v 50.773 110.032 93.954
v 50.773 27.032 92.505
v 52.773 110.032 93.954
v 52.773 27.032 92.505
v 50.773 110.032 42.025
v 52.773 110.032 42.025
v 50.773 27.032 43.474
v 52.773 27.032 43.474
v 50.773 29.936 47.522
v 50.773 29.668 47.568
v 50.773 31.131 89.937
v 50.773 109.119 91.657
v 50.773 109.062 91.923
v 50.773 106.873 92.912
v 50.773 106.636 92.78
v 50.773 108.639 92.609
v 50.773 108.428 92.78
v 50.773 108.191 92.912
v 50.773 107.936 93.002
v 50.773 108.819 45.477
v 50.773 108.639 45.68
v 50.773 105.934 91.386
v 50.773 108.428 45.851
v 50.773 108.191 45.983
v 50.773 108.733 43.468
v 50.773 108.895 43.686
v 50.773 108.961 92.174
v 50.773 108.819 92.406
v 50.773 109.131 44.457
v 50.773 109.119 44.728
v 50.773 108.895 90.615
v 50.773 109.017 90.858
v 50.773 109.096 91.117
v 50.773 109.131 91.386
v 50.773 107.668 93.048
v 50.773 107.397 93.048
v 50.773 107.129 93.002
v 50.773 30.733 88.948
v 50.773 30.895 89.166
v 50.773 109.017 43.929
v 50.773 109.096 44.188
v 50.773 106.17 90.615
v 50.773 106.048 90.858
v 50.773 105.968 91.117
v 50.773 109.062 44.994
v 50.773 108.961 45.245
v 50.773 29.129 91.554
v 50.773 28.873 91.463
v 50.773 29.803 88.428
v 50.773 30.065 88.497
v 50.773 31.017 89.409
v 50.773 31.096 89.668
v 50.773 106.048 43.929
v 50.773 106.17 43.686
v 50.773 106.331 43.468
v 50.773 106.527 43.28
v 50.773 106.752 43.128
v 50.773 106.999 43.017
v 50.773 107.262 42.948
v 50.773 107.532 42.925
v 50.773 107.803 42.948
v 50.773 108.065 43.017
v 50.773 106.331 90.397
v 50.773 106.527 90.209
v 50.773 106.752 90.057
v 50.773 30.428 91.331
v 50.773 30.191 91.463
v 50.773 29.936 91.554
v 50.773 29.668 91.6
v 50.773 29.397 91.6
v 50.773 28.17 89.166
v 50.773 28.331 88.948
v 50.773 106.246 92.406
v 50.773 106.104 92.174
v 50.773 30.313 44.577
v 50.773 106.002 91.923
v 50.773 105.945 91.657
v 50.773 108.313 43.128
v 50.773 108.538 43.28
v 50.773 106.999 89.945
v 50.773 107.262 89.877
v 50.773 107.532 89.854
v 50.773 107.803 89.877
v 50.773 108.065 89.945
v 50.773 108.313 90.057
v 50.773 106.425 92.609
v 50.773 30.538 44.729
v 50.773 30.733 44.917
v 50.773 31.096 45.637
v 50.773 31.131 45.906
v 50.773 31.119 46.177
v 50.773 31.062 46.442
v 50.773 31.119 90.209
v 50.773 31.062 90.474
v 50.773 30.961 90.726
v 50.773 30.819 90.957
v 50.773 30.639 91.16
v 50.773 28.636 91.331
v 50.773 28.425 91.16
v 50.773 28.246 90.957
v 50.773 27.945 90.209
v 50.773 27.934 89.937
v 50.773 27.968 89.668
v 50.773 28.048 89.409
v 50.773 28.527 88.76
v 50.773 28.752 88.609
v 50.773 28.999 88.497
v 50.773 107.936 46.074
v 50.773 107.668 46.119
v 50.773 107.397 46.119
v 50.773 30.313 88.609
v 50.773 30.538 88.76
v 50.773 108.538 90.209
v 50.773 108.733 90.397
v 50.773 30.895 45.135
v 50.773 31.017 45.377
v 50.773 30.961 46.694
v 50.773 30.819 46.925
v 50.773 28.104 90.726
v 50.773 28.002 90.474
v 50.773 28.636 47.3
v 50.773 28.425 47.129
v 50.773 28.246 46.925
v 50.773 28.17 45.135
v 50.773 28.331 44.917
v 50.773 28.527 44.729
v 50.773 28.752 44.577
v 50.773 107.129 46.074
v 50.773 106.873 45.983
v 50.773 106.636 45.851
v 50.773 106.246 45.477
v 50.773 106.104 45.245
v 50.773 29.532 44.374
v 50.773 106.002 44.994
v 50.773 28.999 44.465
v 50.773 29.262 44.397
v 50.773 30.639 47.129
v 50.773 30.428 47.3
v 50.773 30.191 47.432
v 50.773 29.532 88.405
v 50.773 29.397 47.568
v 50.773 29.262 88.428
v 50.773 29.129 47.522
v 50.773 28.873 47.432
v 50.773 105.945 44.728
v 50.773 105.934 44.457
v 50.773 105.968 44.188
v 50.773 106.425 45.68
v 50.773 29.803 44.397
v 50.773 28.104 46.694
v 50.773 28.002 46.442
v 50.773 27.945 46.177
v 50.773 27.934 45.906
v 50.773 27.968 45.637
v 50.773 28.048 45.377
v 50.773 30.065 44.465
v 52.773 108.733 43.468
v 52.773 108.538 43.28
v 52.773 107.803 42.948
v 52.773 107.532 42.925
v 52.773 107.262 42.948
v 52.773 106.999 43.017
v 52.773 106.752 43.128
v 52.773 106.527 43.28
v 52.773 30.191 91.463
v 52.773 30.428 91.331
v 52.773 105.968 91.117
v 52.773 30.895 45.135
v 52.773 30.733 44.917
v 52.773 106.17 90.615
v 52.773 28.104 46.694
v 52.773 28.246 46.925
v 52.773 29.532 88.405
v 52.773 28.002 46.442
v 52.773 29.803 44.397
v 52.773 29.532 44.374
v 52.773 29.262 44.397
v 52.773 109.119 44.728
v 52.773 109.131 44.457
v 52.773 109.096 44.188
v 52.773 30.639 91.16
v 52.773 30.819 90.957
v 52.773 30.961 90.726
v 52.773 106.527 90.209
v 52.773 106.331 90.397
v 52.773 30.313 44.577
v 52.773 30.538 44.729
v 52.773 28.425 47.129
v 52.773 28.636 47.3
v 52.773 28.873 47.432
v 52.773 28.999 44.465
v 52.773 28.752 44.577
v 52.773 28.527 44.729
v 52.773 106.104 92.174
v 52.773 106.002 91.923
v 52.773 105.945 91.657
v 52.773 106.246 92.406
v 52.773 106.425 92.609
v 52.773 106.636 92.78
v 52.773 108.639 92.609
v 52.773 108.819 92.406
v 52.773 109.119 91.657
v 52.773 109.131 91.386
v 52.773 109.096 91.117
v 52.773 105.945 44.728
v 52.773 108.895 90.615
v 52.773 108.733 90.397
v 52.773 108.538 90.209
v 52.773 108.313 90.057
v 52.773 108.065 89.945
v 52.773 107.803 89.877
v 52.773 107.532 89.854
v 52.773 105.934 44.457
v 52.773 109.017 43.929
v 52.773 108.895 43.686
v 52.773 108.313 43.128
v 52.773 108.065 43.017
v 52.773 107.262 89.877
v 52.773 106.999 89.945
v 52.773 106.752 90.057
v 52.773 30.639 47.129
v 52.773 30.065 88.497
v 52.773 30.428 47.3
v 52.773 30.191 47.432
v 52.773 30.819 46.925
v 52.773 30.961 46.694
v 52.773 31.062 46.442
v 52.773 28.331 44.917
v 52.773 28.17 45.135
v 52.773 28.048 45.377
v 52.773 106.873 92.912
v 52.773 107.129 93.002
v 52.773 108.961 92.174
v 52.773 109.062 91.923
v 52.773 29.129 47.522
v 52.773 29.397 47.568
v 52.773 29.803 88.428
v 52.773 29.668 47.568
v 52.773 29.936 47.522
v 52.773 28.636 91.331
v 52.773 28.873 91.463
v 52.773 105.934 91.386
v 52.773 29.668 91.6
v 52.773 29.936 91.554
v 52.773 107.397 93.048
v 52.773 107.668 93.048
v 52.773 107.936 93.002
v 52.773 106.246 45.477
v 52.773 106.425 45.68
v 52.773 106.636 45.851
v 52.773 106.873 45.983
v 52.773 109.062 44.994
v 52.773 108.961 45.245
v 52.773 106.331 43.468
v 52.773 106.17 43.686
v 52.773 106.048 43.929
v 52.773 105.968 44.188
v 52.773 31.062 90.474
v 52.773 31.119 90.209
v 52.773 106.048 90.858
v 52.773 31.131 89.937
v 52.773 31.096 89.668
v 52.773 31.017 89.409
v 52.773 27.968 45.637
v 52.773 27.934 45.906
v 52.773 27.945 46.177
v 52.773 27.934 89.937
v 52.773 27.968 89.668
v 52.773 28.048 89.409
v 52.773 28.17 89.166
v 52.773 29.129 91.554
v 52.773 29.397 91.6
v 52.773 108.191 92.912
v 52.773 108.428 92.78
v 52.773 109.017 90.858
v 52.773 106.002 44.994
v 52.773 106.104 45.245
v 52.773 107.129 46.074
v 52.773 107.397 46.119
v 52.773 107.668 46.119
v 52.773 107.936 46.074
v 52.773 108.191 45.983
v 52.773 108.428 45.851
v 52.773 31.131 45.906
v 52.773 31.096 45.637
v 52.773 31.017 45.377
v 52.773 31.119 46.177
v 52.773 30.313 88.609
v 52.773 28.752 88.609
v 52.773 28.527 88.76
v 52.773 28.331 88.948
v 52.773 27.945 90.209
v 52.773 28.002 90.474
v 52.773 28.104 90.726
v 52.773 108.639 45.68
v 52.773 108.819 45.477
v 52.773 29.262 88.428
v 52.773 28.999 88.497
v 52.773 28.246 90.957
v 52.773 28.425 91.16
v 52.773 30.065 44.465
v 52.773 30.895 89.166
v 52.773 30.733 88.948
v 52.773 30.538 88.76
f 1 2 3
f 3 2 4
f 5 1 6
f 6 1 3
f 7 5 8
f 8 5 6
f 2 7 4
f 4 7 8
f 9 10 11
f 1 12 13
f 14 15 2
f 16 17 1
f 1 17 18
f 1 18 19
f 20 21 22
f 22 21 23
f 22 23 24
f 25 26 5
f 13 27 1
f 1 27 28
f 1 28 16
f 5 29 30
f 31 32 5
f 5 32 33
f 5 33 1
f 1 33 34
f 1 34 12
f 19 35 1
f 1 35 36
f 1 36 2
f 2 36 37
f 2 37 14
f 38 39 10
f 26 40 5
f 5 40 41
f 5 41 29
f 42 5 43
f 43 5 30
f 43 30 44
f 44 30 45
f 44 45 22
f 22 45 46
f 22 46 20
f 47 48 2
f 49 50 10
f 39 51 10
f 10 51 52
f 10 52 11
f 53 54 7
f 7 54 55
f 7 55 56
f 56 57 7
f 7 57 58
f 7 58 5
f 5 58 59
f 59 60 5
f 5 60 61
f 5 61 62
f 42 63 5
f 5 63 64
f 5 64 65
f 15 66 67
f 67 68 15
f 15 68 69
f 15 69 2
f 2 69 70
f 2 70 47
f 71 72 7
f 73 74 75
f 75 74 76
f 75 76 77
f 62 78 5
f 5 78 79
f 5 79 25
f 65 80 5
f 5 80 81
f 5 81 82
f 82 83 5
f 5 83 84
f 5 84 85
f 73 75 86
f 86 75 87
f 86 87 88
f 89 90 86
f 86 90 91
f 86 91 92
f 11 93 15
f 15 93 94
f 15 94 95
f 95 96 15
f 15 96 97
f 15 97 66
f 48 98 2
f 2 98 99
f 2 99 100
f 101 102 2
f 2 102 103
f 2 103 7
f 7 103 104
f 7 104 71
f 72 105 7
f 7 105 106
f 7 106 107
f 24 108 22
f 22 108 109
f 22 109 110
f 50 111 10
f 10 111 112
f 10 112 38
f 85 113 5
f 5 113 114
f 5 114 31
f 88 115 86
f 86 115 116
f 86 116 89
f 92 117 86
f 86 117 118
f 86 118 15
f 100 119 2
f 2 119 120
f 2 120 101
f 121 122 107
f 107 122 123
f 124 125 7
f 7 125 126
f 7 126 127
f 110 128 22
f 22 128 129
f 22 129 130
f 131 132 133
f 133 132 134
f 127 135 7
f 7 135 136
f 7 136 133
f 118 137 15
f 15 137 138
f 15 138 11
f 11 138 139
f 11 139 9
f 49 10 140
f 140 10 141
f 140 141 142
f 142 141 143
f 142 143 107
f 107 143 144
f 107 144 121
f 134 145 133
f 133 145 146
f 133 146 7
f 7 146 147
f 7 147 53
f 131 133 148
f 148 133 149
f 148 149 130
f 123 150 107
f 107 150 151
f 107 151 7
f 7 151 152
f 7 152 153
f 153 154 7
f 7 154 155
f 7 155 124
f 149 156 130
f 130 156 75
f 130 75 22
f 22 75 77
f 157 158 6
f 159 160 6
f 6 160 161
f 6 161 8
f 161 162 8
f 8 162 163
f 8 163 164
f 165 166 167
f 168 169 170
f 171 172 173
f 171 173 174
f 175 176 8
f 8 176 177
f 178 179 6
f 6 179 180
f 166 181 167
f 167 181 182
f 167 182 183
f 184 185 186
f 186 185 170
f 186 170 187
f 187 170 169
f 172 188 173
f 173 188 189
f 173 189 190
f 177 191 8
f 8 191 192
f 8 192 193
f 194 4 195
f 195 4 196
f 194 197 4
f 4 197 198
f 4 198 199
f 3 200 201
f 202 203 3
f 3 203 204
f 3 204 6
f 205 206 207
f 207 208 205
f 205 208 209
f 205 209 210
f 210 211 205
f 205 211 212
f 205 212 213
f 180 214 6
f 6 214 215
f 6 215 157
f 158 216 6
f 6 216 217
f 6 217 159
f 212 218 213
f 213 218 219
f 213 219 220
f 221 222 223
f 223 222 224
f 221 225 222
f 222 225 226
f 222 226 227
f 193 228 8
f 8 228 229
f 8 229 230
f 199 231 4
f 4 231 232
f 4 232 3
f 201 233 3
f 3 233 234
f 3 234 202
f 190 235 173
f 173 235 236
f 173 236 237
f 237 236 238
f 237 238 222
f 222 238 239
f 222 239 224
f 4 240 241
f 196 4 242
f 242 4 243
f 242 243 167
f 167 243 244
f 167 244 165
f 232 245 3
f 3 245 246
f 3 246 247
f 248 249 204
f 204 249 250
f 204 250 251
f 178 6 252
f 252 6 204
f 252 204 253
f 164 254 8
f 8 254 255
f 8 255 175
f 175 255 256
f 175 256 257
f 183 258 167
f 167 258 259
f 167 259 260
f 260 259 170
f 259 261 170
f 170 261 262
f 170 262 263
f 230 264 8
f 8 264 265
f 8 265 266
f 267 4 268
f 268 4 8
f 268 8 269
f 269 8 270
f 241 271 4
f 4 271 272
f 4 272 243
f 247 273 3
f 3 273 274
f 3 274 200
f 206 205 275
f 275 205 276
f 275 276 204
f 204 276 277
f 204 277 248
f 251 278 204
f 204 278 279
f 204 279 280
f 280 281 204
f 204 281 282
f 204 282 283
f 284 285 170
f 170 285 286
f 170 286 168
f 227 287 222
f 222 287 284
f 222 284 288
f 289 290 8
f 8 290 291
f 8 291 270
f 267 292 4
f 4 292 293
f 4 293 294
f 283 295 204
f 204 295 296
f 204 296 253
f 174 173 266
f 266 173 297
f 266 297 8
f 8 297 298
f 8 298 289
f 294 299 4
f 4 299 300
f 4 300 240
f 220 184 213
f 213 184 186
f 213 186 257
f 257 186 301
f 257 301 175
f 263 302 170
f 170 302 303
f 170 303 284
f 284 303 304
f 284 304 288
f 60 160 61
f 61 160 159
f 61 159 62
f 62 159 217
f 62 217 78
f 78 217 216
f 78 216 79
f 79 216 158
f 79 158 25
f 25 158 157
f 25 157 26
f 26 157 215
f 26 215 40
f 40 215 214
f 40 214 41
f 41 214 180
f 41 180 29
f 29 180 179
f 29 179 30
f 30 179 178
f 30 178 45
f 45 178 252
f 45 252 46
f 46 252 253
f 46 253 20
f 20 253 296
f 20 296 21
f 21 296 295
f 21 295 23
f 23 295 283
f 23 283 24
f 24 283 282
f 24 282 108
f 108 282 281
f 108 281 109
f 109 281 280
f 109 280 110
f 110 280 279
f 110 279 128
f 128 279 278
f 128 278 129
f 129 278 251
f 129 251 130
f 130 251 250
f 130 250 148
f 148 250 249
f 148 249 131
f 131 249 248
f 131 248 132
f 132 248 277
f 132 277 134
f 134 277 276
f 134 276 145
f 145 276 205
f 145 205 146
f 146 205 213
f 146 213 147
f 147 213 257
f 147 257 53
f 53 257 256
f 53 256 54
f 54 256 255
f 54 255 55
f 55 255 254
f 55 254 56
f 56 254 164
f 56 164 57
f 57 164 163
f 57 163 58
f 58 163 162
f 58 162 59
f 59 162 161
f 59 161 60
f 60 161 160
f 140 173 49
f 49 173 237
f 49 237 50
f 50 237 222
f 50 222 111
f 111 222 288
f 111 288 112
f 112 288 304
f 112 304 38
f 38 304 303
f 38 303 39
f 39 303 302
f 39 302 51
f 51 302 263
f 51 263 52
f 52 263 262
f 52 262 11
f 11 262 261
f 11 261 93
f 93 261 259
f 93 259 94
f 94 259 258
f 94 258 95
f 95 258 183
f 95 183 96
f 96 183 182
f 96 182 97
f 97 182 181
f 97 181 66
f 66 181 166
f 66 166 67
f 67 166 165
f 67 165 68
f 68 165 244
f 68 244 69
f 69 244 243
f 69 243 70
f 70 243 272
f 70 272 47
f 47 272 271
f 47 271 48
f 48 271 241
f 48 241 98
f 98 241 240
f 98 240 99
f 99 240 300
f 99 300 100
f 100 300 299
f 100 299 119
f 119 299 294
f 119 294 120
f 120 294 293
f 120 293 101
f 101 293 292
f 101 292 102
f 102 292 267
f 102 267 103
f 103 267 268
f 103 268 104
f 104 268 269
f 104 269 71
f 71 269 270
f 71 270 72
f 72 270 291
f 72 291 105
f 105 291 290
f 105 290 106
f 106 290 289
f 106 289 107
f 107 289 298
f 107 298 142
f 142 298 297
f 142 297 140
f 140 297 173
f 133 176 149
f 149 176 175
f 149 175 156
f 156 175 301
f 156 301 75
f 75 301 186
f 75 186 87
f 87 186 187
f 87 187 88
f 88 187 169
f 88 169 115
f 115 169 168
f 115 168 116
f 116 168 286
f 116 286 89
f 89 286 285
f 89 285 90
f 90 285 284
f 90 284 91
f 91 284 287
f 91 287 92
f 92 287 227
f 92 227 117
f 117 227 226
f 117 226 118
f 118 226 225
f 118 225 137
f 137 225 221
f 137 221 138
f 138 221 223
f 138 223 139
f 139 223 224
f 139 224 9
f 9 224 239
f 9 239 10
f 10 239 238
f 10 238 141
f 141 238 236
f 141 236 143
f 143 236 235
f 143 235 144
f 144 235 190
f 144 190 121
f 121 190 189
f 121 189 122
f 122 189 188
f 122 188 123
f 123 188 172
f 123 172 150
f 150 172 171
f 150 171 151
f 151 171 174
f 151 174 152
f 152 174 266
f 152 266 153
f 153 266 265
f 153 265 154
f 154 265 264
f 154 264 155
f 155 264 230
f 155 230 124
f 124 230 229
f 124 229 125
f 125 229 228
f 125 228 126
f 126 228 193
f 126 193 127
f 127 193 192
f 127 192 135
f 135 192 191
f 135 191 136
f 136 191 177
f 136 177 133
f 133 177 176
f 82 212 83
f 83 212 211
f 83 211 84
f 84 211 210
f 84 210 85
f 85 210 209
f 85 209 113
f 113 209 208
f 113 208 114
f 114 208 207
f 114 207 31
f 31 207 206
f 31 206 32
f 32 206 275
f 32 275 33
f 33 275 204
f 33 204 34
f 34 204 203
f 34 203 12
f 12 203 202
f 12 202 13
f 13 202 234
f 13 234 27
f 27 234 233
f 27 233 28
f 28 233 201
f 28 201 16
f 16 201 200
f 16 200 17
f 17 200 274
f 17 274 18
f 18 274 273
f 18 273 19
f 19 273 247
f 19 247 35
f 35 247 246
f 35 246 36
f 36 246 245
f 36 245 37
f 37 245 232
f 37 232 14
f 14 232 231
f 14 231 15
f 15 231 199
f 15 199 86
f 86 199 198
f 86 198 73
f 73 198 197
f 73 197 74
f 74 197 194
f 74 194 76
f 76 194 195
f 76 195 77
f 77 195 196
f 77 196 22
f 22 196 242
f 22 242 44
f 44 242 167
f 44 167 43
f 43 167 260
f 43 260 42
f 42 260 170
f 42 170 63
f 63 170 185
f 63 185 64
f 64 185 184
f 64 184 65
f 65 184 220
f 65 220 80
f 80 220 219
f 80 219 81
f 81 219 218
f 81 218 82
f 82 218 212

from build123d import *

# Parameters (mm, degrees)
BOSS_EXTRUDE1_DEPTH = 2
SKETCH2_R           = 1.6
CUT_EXTRUDE4_DEPTH  = 2


with BuildPart() as part:
    # Sketch1 → Boss-Extrude1 (new body)
    with BuildSketch(Plane(origin=(52.773284786, 0, 0), x_dir=(0, 0, -1), z_dir=(1, 0, 0))):
        Polygon((-92.505328732, 27.032359226), (-43.473908394, 27.032359226), (-42.025138005, 110.032359226), (-93.954099121, 110.032359226), align=None)
    extrude(amount=-BOSS_EXTRUDE1_DEPTH)

    # Sketch2 → Cut-Extrude4 (cut)
    with BuildSketch(Plane(origin=(52.773284786, 0, 0), x_dir=(0, 0, -1), z_dir=(1, 0, 0))):
        with Locations((-44.525138005, 107.532359226)):
            Circle(SKETCH2_R)
        with Locations((-91.454099121, 107.532359226)):
            Circle(SKETCH2_R)
        with Locations((-45.973908394, 29.532359226)):
            Circle(SKETCH2_R)
        with Locations((-90.005328732, 29.532359226)):
            Circle(SKETCH2_R)
    extrude(amount=-CUT_EXTRUDE4_DEPTH, mode=Mode.SUBTRACT)


solid = part.part
